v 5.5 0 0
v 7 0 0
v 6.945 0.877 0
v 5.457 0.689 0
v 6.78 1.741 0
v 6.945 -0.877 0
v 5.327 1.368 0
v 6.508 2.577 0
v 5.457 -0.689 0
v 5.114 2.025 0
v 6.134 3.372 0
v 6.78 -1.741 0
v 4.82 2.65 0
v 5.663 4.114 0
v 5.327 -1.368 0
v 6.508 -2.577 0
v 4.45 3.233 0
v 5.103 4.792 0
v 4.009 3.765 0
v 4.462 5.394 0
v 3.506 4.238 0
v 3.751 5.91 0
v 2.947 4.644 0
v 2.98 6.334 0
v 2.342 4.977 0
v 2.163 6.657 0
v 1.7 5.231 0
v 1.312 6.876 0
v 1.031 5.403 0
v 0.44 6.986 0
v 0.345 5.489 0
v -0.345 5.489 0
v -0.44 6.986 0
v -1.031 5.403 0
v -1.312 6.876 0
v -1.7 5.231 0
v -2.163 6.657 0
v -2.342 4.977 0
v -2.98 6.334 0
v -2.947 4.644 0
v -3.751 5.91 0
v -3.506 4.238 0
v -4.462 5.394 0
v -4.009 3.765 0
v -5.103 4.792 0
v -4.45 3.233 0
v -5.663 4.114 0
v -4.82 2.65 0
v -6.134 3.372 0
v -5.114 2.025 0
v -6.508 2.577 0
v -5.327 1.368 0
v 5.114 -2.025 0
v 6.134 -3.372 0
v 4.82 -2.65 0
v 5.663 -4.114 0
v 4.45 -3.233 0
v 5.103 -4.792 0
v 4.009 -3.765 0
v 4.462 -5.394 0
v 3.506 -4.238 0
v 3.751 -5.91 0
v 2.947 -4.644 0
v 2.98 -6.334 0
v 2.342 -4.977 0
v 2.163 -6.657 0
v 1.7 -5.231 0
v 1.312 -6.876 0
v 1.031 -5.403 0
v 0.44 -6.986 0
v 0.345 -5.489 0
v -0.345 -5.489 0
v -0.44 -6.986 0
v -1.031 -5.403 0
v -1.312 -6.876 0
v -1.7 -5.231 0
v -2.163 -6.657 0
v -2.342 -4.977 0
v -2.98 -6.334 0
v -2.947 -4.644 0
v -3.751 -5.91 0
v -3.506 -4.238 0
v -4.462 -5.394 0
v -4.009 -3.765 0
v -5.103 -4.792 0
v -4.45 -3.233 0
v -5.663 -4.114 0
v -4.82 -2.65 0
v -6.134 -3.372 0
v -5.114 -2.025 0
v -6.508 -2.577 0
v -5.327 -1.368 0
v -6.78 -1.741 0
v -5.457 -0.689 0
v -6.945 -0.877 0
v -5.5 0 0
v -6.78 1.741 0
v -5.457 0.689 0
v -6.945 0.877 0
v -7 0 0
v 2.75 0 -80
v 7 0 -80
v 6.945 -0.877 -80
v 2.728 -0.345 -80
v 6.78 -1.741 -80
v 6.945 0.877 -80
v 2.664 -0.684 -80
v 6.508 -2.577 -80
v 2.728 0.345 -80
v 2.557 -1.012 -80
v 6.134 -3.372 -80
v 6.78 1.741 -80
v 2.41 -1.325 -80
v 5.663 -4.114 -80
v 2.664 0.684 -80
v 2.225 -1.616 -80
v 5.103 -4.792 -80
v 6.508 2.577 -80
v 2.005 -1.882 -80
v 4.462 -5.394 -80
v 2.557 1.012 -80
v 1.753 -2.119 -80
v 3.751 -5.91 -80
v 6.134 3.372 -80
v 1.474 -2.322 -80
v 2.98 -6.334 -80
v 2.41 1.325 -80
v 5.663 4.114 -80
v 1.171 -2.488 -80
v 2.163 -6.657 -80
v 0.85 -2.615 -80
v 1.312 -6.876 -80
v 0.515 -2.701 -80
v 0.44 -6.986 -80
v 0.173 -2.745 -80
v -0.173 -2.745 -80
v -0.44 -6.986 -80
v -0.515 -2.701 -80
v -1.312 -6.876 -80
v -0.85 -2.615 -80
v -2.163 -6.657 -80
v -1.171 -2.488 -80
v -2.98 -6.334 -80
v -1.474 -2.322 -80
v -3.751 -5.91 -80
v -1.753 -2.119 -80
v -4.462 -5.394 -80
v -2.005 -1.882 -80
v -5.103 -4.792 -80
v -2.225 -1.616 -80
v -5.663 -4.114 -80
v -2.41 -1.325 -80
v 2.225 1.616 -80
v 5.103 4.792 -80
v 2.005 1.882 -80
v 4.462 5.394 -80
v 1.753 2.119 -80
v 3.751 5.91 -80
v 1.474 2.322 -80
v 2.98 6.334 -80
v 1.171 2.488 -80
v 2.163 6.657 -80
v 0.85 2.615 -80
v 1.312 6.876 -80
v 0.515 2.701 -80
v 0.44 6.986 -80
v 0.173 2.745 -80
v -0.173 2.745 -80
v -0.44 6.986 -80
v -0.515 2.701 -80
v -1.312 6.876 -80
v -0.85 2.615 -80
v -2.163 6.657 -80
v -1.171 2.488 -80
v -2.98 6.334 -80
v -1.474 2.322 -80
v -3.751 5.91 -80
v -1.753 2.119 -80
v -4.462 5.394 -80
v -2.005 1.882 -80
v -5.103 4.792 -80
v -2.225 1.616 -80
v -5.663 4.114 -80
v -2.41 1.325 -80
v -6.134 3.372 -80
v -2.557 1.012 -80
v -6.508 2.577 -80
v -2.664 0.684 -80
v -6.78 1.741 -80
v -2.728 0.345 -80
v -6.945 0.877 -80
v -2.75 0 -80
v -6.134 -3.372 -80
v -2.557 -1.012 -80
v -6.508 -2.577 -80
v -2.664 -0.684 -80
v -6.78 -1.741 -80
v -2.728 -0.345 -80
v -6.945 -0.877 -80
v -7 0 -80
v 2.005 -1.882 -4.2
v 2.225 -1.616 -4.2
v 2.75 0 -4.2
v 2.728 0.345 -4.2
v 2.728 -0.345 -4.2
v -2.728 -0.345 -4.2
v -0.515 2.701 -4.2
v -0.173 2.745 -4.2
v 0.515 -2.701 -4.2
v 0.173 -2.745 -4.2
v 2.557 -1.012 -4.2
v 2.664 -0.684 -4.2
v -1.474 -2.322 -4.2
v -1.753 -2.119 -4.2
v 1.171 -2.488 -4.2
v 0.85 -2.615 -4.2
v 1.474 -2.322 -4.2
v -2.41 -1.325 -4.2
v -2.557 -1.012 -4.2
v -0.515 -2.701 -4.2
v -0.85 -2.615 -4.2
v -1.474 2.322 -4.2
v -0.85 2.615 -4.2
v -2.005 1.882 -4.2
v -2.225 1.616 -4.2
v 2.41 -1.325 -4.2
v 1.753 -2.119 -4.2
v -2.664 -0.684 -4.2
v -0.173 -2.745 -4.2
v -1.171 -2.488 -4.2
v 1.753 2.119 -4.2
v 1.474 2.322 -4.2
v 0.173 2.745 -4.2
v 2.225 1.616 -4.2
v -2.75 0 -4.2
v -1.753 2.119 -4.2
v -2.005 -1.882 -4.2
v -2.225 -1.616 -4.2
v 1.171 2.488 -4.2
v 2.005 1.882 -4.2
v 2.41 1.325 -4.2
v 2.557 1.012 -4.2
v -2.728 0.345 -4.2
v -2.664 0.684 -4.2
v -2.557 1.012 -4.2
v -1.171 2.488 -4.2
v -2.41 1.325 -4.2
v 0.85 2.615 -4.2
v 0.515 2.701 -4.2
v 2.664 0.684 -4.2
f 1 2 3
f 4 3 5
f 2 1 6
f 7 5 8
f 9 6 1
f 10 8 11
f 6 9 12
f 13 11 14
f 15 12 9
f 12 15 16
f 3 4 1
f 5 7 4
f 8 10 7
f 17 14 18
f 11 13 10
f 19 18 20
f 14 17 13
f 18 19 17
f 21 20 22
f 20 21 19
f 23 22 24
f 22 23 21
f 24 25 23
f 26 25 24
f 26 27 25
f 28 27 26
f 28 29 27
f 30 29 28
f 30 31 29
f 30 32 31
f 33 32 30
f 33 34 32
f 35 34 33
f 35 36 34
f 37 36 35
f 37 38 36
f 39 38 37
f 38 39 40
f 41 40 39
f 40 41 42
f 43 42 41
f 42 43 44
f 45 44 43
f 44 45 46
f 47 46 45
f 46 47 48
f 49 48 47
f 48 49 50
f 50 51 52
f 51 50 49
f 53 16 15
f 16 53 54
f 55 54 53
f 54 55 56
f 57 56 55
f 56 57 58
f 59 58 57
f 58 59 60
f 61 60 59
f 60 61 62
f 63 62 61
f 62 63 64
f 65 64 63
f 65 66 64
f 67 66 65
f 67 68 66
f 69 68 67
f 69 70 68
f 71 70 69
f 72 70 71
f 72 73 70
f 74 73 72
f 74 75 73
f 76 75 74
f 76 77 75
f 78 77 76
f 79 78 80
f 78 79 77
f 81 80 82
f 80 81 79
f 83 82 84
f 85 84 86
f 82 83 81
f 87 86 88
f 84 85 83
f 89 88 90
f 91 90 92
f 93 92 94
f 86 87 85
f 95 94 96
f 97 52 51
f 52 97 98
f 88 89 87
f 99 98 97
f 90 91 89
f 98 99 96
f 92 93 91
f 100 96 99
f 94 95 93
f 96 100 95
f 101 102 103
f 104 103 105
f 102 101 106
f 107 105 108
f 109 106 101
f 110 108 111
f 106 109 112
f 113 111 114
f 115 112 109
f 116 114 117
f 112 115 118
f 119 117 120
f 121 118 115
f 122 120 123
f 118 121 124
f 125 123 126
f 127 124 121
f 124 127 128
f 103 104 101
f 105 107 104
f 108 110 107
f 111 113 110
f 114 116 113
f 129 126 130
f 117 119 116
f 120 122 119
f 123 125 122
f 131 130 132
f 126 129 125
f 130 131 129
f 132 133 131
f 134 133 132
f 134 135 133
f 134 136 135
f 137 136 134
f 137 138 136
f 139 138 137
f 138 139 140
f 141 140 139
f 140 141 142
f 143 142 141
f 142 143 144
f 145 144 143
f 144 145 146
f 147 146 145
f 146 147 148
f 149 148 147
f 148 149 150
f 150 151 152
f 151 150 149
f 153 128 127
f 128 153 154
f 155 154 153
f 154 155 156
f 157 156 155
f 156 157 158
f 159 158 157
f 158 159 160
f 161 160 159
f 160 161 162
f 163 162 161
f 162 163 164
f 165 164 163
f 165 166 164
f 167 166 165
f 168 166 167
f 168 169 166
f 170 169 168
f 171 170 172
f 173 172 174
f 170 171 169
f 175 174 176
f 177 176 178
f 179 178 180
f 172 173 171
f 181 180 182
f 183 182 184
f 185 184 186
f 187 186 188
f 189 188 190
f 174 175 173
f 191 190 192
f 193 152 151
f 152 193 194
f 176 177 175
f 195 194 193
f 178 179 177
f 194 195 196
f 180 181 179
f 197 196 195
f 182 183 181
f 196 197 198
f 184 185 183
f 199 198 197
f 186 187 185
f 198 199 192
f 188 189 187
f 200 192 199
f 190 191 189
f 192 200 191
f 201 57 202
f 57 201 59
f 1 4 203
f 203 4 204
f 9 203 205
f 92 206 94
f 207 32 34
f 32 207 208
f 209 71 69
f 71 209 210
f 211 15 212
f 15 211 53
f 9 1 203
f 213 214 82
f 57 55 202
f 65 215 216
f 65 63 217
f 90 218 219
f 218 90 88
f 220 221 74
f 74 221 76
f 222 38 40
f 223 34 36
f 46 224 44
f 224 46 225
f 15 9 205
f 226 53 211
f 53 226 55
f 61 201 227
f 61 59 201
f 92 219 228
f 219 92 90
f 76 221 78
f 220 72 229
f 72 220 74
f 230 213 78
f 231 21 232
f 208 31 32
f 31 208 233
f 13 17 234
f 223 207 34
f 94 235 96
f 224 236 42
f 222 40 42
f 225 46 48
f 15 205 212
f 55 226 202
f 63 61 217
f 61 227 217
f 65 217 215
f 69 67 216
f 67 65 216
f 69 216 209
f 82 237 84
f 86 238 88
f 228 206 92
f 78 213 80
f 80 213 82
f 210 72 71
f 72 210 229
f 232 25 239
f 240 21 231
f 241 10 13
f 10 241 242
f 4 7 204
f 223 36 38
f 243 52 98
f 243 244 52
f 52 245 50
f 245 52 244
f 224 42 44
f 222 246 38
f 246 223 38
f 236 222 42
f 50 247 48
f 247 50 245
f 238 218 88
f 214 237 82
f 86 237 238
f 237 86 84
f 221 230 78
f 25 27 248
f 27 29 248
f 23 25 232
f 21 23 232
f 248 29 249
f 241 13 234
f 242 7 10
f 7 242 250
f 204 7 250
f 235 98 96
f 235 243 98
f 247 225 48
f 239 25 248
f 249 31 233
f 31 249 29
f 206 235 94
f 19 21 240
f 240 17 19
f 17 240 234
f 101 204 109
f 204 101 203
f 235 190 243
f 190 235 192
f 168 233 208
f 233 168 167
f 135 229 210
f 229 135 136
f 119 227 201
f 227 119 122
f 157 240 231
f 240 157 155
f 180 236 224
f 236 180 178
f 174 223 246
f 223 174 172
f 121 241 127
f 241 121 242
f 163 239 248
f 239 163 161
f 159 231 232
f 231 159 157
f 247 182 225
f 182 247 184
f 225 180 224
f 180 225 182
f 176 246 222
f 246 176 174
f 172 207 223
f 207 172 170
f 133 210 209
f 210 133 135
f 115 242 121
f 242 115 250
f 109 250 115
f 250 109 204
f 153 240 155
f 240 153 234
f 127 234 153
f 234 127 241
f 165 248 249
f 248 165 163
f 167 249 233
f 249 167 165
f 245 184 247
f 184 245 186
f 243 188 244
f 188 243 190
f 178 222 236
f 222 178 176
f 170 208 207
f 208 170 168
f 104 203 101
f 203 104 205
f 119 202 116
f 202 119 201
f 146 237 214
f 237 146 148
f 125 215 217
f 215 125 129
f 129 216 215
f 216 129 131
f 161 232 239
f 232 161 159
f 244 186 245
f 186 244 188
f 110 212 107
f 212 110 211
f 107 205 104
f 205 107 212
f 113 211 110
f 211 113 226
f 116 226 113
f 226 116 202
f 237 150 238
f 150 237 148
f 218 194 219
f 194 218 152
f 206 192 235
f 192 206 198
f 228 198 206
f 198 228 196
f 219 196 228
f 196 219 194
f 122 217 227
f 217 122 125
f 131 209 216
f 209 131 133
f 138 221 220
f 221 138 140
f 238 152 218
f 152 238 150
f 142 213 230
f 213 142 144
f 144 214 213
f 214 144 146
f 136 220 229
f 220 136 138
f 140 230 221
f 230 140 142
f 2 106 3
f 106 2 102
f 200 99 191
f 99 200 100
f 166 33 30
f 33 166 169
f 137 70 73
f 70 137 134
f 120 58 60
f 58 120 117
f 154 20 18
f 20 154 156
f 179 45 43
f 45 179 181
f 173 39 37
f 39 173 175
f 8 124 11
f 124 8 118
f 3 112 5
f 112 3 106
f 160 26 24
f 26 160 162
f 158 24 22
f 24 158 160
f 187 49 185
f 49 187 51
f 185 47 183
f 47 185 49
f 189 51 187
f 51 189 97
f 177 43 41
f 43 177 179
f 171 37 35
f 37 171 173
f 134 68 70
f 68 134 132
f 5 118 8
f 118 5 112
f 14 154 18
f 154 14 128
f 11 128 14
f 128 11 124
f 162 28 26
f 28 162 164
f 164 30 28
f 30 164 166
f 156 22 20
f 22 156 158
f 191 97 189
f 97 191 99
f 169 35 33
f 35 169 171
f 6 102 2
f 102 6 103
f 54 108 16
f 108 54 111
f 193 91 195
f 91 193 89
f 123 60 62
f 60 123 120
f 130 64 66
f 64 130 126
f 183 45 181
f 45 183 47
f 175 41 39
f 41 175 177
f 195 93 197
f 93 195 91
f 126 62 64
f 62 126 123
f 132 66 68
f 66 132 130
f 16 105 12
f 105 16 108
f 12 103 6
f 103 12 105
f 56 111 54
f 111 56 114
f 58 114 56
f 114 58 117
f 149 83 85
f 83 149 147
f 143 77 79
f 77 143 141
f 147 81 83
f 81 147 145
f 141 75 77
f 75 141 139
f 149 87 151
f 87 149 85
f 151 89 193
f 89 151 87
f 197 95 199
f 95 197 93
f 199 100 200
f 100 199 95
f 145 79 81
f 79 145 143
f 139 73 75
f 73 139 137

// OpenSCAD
$fn = 50;


difference() {
	union() {
		translate(v = [0, 0, -80.0000000000]) {
			cylinder(h = 80, r = 7.0000000000);
		}
	}
	union() {
		translate(v = [0, 0, 0]) {
			rotate(a = [0, 0, 0]) {
				difference() {
					union() {
						#translate(v = [0, 0, -80.0000000000]) {
							cylinder(h = 80, r = 2.2500000000);
						}
						#translate(v = [0, 0, -4.2000000000]) {
							cylinder(h = 4.2000000000, r1 = 2.7500000000, r2 = 5.5000000000);
						}
						#translate(v = [0, 0, -80.0000000000]) {
							cylinder(h = 80, r = 2.7500000000);
						}
						#translate(v = [0, 0, -80.0000000000]) {
							cylinder(h = 80, r = 2.2500000000);
						}
					}
					union();
				}
			}
		}
	}
}
